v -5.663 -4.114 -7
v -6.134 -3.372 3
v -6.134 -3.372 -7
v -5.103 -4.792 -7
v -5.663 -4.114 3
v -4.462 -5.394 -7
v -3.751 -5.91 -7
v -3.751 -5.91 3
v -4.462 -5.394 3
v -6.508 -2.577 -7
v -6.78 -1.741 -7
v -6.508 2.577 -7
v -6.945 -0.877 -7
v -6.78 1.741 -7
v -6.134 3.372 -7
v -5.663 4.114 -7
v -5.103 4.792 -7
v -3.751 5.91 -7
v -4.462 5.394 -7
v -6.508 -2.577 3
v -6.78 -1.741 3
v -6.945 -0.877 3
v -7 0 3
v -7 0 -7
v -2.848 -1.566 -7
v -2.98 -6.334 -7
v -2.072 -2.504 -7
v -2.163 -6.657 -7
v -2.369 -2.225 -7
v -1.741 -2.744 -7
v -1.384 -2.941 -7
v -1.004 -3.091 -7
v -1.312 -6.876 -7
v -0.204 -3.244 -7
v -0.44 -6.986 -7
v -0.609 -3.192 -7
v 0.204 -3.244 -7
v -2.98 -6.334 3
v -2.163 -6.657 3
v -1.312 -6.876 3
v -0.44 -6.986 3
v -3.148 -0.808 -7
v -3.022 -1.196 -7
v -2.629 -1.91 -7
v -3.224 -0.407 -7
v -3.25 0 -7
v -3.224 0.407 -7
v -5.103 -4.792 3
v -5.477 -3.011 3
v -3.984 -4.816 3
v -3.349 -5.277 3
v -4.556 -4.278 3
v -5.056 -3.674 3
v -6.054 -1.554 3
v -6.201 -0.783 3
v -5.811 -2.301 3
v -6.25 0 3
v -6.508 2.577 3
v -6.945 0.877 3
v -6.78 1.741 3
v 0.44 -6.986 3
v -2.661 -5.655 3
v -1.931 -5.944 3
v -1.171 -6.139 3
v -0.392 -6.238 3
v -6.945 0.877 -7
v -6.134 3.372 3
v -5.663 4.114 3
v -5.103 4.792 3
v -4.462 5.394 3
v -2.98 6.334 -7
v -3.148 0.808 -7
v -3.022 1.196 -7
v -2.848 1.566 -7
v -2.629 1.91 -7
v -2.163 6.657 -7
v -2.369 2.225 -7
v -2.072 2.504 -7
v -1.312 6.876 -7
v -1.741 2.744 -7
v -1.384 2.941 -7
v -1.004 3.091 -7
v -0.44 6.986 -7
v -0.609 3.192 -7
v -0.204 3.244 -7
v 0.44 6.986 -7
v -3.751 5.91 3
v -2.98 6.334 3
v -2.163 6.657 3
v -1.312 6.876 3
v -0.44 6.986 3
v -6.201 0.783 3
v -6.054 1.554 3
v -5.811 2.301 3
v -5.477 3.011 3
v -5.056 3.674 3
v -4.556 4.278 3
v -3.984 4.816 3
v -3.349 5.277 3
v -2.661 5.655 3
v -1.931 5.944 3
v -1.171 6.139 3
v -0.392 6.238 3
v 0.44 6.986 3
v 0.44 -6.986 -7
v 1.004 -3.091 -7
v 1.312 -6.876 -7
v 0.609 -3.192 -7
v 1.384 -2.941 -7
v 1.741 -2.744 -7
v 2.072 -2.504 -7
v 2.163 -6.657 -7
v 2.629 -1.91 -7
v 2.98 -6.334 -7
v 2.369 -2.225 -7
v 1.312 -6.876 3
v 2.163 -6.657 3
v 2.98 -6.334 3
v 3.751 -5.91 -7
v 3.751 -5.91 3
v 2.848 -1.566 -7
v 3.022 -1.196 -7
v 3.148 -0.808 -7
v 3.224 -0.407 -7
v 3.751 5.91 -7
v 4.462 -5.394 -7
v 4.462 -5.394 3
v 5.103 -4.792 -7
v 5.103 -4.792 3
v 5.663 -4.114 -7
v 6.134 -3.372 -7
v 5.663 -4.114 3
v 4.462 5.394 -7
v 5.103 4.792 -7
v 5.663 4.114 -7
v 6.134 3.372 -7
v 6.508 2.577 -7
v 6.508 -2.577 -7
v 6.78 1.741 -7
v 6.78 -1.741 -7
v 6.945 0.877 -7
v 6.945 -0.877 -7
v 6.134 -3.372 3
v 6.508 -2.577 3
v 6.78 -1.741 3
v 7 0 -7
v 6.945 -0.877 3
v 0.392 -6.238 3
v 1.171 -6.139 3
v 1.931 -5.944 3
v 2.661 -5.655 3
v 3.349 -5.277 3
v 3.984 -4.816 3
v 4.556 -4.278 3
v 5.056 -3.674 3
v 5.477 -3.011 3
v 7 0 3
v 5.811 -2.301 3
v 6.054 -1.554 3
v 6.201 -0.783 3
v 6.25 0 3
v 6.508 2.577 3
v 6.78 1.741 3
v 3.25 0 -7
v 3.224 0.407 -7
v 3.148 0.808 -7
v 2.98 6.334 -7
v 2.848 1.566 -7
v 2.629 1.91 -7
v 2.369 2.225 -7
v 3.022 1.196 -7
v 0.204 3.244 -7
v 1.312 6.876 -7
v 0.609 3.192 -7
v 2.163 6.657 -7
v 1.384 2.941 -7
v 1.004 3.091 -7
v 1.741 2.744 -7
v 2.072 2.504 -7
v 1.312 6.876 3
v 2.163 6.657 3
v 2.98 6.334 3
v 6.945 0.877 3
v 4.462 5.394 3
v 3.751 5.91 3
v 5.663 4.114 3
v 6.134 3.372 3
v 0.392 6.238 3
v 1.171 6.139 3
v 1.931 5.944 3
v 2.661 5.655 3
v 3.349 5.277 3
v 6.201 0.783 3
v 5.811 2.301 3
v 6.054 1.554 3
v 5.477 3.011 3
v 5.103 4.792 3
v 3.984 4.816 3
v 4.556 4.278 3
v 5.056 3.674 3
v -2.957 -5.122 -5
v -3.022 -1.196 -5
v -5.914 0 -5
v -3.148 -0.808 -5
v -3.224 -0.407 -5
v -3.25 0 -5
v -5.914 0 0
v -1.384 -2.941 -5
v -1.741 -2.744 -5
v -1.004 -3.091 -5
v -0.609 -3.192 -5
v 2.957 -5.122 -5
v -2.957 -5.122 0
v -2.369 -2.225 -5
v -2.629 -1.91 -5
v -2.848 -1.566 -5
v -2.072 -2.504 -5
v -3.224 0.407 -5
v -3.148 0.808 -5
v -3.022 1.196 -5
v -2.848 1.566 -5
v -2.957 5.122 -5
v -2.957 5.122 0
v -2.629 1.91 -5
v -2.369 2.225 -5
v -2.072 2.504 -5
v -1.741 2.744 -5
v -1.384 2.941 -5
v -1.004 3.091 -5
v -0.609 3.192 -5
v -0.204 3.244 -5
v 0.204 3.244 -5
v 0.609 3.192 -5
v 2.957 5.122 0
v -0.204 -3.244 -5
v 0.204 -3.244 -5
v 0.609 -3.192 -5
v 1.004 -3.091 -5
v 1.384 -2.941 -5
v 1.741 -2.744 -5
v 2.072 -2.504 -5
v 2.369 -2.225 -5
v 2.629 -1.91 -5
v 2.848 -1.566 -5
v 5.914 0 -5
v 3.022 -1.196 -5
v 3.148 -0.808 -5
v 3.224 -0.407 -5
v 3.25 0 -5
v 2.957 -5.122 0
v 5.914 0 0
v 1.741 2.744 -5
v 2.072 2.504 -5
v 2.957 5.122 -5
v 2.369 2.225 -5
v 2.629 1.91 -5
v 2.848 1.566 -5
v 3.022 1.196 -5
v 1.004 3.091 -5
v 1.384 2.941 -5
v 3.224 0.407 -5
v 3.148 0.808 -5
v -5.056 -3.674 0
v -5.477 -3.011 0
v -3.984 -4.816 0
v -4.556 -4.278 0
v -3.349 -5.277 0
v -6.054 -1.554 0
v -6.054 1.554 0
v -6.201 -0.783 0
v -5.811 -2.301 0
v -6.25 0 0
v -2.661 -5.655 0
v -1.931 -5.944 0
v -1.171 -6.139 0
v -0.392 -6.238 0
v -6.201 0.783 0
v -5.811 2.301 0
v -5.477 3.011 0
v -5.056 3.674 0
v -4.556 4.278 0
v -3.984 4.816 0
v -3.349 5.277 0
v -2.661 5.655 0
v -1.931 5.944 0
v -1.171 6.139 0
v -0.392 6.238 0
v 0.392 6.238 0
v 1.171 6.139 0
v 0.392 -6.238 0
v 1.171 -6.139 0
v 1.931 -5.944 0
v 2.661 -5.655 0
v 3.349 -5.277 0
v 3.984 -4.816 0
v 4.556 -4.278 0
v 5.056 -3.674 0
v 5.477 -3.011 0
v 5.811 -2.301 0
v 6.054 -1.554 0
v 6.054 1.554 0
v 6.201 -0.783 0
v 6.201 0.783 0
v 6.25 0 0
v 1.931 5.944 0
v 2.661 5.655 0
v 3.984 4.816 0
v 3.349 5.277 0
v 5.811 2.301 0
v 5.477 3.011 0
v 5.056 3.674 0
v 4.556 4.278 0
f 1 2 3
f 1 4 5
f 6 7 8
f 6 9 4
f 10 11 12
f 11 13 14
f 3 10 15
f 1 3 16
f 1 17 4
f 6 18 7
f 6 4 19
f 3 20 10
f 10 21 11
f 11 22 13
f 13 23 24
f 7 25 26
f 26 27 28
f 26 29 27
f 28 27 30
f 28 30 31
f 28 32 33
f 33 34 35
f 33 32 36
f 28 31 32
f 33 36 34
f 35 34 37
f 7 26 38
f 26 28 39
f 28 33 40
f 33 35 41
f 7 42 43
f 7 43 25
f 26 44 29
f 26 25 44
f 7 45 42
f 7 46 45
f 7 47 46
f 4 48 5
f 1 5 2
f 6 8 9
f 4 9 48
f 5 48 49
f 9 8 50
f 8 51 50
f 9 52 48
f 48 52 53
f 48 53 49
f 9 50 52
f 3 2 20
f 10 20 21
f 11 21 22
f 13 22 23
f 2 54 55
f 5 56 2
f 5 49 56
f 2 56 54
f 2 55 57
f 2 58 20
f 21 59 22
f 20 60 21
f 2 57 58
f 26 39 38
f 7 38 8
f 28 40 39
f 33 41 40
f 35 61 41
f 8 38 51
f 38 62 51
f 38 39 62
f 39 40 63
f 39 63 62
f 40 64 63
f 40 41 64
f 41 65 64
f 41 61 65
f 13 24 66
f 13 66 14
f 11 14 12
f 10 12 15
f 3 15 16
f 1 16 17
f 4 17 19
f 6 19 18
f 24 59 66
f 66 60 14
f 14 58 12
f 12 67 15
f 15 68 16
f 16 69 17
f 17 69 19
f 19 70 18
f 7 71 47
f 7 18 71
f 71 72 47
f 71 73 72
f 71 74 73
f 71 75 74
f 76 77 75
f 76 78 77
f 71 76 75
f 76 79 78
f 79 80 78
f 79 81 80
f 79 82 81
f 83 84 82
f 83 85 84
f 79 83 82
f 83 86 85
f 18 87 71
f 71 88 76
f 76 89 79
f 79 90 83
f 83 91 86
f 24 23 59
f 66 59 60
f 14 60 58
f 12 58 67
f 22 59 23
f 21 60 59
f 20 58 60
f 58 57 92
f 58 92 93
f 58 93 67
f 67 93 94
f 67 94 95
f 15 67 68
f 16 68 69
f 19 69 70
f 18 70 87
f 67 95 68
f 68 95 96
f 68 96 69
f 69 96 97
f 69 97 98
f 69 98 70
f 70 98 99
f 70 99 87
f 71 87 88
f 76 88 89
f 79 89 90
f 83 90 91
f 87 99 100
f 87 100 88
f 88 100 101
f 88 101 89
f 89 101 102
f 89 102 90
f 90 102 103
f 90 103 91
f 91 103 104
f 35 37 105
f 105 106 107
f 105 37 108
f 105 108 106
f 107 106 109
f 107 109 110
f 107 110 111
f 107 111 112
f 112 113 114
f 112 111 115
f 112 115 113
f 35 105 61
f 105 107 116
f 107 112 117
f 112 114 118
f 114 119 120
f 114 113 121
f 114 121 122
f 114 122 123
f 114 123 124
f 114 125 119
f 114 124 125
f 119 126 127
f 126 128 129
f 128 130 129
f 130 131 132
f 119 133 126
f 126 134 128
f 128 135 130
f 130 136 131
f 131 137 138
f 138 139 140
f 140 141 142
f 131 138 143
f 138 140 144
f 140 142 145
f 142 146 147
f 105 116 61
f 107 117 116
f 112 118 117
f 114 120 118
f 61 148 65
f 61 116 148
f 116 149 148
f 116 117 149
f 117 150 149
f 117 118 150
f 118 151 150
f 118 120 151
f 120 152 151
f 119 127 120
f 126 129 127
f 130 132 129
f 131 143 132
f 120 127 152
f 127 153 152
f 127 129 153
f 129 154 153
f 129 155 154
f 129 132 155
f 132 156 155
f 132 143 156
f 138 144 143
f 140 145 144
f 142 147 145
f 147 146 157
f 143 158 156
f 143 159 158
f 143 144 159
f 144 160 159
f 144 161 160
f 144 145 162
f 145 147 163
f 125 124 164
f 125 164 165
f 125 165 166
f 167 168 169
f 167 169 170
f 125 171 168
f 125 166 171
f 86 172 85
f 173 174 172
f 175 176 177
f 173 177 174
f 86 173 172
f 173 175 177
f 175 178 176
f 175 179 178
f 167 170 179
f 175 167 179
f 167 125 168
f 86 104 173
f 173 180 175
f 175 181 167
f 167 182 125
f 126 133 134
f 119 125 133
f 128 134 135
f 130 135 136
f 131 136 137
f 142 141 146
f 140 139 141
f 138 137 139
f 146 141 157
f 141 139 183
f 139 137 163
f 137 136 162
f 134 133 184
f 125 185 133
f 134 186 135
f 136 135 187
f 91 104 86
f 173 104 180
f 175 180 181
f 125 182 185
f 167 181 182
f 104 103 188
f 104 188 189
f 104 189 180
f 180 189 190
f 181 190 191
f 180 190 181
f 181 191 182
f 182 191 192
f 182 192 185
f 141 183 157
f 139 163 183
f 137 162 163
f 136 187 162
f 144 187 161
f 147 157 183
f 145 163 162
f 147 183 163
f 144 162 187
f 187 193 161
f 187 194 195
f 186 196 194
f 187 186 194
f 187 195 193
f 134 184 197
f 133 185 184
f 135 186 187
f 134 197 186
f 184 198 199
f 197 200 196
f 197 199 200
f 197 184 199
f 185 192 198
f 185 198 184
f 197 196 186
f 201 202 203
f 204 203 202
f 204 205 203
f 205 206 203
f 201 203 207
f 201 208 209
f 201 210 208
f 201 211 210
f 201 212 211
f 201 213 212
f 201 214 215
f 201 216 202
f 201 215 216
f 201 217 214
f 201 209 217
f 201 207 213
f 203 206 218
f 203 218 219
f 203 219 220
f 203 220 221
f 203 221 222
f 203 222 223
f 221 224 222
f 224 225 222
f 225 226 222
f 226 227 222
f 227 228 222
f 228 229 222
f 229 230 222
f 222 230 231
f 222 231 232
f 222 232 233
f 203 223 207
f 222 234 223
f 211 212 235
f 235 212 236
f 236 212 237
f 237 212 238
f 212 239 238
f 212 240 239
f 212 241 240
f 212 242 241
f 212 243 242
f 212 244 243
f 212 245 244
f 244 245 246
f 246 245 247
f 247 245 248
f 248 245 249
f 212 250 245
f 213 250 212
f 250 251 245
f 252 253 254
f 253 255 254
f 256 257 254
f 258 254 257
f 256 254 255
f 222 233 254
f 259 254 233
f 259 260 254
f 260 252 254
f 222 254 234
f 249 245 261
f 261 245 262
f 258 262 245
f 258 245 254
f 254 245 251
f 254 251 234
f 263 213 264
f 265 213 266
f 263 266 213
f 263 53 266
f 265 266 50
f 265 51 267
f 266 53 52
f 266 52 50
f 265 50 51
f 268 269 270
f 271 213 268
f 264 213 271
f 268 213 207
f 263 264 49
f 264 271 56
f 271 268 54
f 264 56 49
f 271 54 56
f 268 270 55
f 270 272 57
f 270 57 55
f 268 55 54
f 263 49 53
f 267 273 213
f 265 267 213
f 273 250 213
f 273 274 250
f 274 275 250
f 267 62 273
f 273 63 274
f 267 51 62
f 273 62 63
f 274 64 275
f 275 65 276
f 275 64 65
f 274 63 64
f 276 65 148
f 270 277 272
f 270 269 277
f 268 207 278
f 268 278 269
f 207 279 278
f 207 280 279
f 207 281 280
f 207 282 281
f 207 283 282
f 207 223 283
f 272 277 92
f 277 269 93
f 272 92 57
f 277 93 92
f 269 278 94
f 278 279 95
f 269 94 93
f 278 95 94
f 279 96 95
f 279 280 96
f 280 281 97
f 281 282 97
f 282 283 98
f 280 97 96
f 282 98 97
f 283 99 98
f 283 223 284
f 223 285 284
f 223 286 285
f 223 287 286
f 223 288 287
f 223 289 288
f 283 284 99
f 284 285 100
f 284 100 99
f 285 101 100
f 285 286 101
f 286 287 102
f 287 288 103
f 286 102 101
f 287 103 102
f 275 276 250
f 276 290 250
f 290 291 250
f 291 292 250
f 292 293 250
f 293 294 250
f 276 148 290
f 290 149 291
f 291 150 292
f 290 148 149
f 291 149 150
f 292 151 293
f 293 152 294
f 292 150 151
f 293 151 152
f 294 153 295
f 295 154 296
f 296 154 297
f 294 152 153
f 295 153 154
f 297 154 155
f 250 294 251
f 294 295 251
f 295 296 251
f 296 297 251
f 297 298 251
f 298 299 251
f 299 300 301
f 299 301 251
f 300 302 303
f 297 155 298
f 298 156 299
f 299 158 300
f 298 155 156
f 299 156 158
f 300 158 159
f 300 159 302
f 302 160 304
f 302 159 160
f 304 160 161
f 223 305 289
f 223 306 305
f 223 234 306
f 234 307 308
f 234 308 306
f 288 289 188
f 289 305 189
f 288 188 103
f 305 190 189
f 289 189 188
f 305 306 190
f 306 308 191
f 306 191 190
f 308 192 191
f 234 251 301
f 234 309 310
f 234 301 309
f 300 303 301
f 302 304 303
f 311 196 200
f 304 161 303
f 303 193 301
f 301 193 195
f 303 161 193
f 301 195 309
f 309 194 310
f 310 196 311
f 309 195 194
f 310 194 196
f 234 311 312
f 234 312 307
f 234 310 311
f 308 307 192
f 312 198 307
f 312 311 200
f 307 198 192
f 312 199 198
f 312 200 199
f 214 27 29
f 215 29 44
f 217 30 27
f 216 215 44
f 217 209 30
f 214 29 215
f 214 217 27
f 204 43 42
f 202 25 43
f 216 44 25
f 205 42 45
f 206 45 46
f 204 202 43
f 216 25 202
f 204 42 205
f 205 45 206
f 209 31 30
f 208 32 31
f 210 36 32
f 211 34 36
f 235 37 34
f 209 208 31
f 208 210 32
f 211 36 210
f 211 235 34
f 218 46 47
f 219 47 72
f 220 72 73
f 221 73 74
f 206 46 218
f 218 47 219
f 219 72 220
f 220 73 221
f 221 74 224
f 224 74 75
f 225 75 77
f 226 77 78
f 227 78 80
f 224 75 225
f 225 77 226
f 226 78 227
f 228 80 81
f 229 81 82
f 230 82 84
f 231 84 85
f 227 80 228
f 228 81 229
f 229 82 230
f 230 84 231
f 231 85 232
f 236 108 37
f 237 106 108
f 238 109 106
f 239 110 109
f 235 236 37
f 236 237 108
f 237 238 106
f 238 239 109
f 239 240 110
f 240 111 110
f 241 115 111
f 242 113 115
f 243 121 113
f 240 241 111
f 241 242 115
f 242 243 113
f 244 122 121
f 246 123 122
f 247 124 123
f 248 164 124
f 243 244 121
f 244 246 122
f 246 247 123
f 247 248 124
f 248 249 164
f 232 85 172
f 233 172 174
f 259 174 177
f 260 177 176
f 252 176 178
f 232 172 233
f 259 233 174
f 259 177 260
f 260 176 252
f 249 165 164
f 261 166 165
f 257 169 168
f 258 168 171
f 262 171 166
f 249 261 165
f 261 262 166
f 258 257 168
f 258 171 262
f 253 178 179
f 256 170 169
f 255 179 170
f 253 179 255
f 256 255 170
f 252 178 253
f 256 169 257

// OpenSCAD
$fn = 50;

difference() {
	union() {
		translate(v = [0, 0, -7.0]) {
			cylinder(h = 10.0, r = 7.0);
		}
		#translate(v = [0, 0, -8.5]) {
			cylinder(h = 8.5, r = 2.875);
		}
	}
	union() {
		translate(v = [0, 0, 0]) {
			rotate(a = [0, 0, 0]) {
				difference() {
					union() {
						translate(v = [0, 0, -5]) {
							linear_extrude(height = 5) {
								polygon(points = [[5.914249999999999, 0.0], [2.957125, 5.1218907443321156], [-2.9571249999999982, 5.1218907443321156], [-5.914249999999999, 7.242867331857232e-16], [-2.9571250000000022, -5.121890744332115], [2.9571249999999956, -5.121890744332118]]);
							}
						}
					}
					union();
				}
			}
		}
		#cylinder(h = 3, r = 6.25);
		#translate(v = [0, 0, -100.0]) {
			cylinder(h = 200, r = 3.25);
		}
	}
}
